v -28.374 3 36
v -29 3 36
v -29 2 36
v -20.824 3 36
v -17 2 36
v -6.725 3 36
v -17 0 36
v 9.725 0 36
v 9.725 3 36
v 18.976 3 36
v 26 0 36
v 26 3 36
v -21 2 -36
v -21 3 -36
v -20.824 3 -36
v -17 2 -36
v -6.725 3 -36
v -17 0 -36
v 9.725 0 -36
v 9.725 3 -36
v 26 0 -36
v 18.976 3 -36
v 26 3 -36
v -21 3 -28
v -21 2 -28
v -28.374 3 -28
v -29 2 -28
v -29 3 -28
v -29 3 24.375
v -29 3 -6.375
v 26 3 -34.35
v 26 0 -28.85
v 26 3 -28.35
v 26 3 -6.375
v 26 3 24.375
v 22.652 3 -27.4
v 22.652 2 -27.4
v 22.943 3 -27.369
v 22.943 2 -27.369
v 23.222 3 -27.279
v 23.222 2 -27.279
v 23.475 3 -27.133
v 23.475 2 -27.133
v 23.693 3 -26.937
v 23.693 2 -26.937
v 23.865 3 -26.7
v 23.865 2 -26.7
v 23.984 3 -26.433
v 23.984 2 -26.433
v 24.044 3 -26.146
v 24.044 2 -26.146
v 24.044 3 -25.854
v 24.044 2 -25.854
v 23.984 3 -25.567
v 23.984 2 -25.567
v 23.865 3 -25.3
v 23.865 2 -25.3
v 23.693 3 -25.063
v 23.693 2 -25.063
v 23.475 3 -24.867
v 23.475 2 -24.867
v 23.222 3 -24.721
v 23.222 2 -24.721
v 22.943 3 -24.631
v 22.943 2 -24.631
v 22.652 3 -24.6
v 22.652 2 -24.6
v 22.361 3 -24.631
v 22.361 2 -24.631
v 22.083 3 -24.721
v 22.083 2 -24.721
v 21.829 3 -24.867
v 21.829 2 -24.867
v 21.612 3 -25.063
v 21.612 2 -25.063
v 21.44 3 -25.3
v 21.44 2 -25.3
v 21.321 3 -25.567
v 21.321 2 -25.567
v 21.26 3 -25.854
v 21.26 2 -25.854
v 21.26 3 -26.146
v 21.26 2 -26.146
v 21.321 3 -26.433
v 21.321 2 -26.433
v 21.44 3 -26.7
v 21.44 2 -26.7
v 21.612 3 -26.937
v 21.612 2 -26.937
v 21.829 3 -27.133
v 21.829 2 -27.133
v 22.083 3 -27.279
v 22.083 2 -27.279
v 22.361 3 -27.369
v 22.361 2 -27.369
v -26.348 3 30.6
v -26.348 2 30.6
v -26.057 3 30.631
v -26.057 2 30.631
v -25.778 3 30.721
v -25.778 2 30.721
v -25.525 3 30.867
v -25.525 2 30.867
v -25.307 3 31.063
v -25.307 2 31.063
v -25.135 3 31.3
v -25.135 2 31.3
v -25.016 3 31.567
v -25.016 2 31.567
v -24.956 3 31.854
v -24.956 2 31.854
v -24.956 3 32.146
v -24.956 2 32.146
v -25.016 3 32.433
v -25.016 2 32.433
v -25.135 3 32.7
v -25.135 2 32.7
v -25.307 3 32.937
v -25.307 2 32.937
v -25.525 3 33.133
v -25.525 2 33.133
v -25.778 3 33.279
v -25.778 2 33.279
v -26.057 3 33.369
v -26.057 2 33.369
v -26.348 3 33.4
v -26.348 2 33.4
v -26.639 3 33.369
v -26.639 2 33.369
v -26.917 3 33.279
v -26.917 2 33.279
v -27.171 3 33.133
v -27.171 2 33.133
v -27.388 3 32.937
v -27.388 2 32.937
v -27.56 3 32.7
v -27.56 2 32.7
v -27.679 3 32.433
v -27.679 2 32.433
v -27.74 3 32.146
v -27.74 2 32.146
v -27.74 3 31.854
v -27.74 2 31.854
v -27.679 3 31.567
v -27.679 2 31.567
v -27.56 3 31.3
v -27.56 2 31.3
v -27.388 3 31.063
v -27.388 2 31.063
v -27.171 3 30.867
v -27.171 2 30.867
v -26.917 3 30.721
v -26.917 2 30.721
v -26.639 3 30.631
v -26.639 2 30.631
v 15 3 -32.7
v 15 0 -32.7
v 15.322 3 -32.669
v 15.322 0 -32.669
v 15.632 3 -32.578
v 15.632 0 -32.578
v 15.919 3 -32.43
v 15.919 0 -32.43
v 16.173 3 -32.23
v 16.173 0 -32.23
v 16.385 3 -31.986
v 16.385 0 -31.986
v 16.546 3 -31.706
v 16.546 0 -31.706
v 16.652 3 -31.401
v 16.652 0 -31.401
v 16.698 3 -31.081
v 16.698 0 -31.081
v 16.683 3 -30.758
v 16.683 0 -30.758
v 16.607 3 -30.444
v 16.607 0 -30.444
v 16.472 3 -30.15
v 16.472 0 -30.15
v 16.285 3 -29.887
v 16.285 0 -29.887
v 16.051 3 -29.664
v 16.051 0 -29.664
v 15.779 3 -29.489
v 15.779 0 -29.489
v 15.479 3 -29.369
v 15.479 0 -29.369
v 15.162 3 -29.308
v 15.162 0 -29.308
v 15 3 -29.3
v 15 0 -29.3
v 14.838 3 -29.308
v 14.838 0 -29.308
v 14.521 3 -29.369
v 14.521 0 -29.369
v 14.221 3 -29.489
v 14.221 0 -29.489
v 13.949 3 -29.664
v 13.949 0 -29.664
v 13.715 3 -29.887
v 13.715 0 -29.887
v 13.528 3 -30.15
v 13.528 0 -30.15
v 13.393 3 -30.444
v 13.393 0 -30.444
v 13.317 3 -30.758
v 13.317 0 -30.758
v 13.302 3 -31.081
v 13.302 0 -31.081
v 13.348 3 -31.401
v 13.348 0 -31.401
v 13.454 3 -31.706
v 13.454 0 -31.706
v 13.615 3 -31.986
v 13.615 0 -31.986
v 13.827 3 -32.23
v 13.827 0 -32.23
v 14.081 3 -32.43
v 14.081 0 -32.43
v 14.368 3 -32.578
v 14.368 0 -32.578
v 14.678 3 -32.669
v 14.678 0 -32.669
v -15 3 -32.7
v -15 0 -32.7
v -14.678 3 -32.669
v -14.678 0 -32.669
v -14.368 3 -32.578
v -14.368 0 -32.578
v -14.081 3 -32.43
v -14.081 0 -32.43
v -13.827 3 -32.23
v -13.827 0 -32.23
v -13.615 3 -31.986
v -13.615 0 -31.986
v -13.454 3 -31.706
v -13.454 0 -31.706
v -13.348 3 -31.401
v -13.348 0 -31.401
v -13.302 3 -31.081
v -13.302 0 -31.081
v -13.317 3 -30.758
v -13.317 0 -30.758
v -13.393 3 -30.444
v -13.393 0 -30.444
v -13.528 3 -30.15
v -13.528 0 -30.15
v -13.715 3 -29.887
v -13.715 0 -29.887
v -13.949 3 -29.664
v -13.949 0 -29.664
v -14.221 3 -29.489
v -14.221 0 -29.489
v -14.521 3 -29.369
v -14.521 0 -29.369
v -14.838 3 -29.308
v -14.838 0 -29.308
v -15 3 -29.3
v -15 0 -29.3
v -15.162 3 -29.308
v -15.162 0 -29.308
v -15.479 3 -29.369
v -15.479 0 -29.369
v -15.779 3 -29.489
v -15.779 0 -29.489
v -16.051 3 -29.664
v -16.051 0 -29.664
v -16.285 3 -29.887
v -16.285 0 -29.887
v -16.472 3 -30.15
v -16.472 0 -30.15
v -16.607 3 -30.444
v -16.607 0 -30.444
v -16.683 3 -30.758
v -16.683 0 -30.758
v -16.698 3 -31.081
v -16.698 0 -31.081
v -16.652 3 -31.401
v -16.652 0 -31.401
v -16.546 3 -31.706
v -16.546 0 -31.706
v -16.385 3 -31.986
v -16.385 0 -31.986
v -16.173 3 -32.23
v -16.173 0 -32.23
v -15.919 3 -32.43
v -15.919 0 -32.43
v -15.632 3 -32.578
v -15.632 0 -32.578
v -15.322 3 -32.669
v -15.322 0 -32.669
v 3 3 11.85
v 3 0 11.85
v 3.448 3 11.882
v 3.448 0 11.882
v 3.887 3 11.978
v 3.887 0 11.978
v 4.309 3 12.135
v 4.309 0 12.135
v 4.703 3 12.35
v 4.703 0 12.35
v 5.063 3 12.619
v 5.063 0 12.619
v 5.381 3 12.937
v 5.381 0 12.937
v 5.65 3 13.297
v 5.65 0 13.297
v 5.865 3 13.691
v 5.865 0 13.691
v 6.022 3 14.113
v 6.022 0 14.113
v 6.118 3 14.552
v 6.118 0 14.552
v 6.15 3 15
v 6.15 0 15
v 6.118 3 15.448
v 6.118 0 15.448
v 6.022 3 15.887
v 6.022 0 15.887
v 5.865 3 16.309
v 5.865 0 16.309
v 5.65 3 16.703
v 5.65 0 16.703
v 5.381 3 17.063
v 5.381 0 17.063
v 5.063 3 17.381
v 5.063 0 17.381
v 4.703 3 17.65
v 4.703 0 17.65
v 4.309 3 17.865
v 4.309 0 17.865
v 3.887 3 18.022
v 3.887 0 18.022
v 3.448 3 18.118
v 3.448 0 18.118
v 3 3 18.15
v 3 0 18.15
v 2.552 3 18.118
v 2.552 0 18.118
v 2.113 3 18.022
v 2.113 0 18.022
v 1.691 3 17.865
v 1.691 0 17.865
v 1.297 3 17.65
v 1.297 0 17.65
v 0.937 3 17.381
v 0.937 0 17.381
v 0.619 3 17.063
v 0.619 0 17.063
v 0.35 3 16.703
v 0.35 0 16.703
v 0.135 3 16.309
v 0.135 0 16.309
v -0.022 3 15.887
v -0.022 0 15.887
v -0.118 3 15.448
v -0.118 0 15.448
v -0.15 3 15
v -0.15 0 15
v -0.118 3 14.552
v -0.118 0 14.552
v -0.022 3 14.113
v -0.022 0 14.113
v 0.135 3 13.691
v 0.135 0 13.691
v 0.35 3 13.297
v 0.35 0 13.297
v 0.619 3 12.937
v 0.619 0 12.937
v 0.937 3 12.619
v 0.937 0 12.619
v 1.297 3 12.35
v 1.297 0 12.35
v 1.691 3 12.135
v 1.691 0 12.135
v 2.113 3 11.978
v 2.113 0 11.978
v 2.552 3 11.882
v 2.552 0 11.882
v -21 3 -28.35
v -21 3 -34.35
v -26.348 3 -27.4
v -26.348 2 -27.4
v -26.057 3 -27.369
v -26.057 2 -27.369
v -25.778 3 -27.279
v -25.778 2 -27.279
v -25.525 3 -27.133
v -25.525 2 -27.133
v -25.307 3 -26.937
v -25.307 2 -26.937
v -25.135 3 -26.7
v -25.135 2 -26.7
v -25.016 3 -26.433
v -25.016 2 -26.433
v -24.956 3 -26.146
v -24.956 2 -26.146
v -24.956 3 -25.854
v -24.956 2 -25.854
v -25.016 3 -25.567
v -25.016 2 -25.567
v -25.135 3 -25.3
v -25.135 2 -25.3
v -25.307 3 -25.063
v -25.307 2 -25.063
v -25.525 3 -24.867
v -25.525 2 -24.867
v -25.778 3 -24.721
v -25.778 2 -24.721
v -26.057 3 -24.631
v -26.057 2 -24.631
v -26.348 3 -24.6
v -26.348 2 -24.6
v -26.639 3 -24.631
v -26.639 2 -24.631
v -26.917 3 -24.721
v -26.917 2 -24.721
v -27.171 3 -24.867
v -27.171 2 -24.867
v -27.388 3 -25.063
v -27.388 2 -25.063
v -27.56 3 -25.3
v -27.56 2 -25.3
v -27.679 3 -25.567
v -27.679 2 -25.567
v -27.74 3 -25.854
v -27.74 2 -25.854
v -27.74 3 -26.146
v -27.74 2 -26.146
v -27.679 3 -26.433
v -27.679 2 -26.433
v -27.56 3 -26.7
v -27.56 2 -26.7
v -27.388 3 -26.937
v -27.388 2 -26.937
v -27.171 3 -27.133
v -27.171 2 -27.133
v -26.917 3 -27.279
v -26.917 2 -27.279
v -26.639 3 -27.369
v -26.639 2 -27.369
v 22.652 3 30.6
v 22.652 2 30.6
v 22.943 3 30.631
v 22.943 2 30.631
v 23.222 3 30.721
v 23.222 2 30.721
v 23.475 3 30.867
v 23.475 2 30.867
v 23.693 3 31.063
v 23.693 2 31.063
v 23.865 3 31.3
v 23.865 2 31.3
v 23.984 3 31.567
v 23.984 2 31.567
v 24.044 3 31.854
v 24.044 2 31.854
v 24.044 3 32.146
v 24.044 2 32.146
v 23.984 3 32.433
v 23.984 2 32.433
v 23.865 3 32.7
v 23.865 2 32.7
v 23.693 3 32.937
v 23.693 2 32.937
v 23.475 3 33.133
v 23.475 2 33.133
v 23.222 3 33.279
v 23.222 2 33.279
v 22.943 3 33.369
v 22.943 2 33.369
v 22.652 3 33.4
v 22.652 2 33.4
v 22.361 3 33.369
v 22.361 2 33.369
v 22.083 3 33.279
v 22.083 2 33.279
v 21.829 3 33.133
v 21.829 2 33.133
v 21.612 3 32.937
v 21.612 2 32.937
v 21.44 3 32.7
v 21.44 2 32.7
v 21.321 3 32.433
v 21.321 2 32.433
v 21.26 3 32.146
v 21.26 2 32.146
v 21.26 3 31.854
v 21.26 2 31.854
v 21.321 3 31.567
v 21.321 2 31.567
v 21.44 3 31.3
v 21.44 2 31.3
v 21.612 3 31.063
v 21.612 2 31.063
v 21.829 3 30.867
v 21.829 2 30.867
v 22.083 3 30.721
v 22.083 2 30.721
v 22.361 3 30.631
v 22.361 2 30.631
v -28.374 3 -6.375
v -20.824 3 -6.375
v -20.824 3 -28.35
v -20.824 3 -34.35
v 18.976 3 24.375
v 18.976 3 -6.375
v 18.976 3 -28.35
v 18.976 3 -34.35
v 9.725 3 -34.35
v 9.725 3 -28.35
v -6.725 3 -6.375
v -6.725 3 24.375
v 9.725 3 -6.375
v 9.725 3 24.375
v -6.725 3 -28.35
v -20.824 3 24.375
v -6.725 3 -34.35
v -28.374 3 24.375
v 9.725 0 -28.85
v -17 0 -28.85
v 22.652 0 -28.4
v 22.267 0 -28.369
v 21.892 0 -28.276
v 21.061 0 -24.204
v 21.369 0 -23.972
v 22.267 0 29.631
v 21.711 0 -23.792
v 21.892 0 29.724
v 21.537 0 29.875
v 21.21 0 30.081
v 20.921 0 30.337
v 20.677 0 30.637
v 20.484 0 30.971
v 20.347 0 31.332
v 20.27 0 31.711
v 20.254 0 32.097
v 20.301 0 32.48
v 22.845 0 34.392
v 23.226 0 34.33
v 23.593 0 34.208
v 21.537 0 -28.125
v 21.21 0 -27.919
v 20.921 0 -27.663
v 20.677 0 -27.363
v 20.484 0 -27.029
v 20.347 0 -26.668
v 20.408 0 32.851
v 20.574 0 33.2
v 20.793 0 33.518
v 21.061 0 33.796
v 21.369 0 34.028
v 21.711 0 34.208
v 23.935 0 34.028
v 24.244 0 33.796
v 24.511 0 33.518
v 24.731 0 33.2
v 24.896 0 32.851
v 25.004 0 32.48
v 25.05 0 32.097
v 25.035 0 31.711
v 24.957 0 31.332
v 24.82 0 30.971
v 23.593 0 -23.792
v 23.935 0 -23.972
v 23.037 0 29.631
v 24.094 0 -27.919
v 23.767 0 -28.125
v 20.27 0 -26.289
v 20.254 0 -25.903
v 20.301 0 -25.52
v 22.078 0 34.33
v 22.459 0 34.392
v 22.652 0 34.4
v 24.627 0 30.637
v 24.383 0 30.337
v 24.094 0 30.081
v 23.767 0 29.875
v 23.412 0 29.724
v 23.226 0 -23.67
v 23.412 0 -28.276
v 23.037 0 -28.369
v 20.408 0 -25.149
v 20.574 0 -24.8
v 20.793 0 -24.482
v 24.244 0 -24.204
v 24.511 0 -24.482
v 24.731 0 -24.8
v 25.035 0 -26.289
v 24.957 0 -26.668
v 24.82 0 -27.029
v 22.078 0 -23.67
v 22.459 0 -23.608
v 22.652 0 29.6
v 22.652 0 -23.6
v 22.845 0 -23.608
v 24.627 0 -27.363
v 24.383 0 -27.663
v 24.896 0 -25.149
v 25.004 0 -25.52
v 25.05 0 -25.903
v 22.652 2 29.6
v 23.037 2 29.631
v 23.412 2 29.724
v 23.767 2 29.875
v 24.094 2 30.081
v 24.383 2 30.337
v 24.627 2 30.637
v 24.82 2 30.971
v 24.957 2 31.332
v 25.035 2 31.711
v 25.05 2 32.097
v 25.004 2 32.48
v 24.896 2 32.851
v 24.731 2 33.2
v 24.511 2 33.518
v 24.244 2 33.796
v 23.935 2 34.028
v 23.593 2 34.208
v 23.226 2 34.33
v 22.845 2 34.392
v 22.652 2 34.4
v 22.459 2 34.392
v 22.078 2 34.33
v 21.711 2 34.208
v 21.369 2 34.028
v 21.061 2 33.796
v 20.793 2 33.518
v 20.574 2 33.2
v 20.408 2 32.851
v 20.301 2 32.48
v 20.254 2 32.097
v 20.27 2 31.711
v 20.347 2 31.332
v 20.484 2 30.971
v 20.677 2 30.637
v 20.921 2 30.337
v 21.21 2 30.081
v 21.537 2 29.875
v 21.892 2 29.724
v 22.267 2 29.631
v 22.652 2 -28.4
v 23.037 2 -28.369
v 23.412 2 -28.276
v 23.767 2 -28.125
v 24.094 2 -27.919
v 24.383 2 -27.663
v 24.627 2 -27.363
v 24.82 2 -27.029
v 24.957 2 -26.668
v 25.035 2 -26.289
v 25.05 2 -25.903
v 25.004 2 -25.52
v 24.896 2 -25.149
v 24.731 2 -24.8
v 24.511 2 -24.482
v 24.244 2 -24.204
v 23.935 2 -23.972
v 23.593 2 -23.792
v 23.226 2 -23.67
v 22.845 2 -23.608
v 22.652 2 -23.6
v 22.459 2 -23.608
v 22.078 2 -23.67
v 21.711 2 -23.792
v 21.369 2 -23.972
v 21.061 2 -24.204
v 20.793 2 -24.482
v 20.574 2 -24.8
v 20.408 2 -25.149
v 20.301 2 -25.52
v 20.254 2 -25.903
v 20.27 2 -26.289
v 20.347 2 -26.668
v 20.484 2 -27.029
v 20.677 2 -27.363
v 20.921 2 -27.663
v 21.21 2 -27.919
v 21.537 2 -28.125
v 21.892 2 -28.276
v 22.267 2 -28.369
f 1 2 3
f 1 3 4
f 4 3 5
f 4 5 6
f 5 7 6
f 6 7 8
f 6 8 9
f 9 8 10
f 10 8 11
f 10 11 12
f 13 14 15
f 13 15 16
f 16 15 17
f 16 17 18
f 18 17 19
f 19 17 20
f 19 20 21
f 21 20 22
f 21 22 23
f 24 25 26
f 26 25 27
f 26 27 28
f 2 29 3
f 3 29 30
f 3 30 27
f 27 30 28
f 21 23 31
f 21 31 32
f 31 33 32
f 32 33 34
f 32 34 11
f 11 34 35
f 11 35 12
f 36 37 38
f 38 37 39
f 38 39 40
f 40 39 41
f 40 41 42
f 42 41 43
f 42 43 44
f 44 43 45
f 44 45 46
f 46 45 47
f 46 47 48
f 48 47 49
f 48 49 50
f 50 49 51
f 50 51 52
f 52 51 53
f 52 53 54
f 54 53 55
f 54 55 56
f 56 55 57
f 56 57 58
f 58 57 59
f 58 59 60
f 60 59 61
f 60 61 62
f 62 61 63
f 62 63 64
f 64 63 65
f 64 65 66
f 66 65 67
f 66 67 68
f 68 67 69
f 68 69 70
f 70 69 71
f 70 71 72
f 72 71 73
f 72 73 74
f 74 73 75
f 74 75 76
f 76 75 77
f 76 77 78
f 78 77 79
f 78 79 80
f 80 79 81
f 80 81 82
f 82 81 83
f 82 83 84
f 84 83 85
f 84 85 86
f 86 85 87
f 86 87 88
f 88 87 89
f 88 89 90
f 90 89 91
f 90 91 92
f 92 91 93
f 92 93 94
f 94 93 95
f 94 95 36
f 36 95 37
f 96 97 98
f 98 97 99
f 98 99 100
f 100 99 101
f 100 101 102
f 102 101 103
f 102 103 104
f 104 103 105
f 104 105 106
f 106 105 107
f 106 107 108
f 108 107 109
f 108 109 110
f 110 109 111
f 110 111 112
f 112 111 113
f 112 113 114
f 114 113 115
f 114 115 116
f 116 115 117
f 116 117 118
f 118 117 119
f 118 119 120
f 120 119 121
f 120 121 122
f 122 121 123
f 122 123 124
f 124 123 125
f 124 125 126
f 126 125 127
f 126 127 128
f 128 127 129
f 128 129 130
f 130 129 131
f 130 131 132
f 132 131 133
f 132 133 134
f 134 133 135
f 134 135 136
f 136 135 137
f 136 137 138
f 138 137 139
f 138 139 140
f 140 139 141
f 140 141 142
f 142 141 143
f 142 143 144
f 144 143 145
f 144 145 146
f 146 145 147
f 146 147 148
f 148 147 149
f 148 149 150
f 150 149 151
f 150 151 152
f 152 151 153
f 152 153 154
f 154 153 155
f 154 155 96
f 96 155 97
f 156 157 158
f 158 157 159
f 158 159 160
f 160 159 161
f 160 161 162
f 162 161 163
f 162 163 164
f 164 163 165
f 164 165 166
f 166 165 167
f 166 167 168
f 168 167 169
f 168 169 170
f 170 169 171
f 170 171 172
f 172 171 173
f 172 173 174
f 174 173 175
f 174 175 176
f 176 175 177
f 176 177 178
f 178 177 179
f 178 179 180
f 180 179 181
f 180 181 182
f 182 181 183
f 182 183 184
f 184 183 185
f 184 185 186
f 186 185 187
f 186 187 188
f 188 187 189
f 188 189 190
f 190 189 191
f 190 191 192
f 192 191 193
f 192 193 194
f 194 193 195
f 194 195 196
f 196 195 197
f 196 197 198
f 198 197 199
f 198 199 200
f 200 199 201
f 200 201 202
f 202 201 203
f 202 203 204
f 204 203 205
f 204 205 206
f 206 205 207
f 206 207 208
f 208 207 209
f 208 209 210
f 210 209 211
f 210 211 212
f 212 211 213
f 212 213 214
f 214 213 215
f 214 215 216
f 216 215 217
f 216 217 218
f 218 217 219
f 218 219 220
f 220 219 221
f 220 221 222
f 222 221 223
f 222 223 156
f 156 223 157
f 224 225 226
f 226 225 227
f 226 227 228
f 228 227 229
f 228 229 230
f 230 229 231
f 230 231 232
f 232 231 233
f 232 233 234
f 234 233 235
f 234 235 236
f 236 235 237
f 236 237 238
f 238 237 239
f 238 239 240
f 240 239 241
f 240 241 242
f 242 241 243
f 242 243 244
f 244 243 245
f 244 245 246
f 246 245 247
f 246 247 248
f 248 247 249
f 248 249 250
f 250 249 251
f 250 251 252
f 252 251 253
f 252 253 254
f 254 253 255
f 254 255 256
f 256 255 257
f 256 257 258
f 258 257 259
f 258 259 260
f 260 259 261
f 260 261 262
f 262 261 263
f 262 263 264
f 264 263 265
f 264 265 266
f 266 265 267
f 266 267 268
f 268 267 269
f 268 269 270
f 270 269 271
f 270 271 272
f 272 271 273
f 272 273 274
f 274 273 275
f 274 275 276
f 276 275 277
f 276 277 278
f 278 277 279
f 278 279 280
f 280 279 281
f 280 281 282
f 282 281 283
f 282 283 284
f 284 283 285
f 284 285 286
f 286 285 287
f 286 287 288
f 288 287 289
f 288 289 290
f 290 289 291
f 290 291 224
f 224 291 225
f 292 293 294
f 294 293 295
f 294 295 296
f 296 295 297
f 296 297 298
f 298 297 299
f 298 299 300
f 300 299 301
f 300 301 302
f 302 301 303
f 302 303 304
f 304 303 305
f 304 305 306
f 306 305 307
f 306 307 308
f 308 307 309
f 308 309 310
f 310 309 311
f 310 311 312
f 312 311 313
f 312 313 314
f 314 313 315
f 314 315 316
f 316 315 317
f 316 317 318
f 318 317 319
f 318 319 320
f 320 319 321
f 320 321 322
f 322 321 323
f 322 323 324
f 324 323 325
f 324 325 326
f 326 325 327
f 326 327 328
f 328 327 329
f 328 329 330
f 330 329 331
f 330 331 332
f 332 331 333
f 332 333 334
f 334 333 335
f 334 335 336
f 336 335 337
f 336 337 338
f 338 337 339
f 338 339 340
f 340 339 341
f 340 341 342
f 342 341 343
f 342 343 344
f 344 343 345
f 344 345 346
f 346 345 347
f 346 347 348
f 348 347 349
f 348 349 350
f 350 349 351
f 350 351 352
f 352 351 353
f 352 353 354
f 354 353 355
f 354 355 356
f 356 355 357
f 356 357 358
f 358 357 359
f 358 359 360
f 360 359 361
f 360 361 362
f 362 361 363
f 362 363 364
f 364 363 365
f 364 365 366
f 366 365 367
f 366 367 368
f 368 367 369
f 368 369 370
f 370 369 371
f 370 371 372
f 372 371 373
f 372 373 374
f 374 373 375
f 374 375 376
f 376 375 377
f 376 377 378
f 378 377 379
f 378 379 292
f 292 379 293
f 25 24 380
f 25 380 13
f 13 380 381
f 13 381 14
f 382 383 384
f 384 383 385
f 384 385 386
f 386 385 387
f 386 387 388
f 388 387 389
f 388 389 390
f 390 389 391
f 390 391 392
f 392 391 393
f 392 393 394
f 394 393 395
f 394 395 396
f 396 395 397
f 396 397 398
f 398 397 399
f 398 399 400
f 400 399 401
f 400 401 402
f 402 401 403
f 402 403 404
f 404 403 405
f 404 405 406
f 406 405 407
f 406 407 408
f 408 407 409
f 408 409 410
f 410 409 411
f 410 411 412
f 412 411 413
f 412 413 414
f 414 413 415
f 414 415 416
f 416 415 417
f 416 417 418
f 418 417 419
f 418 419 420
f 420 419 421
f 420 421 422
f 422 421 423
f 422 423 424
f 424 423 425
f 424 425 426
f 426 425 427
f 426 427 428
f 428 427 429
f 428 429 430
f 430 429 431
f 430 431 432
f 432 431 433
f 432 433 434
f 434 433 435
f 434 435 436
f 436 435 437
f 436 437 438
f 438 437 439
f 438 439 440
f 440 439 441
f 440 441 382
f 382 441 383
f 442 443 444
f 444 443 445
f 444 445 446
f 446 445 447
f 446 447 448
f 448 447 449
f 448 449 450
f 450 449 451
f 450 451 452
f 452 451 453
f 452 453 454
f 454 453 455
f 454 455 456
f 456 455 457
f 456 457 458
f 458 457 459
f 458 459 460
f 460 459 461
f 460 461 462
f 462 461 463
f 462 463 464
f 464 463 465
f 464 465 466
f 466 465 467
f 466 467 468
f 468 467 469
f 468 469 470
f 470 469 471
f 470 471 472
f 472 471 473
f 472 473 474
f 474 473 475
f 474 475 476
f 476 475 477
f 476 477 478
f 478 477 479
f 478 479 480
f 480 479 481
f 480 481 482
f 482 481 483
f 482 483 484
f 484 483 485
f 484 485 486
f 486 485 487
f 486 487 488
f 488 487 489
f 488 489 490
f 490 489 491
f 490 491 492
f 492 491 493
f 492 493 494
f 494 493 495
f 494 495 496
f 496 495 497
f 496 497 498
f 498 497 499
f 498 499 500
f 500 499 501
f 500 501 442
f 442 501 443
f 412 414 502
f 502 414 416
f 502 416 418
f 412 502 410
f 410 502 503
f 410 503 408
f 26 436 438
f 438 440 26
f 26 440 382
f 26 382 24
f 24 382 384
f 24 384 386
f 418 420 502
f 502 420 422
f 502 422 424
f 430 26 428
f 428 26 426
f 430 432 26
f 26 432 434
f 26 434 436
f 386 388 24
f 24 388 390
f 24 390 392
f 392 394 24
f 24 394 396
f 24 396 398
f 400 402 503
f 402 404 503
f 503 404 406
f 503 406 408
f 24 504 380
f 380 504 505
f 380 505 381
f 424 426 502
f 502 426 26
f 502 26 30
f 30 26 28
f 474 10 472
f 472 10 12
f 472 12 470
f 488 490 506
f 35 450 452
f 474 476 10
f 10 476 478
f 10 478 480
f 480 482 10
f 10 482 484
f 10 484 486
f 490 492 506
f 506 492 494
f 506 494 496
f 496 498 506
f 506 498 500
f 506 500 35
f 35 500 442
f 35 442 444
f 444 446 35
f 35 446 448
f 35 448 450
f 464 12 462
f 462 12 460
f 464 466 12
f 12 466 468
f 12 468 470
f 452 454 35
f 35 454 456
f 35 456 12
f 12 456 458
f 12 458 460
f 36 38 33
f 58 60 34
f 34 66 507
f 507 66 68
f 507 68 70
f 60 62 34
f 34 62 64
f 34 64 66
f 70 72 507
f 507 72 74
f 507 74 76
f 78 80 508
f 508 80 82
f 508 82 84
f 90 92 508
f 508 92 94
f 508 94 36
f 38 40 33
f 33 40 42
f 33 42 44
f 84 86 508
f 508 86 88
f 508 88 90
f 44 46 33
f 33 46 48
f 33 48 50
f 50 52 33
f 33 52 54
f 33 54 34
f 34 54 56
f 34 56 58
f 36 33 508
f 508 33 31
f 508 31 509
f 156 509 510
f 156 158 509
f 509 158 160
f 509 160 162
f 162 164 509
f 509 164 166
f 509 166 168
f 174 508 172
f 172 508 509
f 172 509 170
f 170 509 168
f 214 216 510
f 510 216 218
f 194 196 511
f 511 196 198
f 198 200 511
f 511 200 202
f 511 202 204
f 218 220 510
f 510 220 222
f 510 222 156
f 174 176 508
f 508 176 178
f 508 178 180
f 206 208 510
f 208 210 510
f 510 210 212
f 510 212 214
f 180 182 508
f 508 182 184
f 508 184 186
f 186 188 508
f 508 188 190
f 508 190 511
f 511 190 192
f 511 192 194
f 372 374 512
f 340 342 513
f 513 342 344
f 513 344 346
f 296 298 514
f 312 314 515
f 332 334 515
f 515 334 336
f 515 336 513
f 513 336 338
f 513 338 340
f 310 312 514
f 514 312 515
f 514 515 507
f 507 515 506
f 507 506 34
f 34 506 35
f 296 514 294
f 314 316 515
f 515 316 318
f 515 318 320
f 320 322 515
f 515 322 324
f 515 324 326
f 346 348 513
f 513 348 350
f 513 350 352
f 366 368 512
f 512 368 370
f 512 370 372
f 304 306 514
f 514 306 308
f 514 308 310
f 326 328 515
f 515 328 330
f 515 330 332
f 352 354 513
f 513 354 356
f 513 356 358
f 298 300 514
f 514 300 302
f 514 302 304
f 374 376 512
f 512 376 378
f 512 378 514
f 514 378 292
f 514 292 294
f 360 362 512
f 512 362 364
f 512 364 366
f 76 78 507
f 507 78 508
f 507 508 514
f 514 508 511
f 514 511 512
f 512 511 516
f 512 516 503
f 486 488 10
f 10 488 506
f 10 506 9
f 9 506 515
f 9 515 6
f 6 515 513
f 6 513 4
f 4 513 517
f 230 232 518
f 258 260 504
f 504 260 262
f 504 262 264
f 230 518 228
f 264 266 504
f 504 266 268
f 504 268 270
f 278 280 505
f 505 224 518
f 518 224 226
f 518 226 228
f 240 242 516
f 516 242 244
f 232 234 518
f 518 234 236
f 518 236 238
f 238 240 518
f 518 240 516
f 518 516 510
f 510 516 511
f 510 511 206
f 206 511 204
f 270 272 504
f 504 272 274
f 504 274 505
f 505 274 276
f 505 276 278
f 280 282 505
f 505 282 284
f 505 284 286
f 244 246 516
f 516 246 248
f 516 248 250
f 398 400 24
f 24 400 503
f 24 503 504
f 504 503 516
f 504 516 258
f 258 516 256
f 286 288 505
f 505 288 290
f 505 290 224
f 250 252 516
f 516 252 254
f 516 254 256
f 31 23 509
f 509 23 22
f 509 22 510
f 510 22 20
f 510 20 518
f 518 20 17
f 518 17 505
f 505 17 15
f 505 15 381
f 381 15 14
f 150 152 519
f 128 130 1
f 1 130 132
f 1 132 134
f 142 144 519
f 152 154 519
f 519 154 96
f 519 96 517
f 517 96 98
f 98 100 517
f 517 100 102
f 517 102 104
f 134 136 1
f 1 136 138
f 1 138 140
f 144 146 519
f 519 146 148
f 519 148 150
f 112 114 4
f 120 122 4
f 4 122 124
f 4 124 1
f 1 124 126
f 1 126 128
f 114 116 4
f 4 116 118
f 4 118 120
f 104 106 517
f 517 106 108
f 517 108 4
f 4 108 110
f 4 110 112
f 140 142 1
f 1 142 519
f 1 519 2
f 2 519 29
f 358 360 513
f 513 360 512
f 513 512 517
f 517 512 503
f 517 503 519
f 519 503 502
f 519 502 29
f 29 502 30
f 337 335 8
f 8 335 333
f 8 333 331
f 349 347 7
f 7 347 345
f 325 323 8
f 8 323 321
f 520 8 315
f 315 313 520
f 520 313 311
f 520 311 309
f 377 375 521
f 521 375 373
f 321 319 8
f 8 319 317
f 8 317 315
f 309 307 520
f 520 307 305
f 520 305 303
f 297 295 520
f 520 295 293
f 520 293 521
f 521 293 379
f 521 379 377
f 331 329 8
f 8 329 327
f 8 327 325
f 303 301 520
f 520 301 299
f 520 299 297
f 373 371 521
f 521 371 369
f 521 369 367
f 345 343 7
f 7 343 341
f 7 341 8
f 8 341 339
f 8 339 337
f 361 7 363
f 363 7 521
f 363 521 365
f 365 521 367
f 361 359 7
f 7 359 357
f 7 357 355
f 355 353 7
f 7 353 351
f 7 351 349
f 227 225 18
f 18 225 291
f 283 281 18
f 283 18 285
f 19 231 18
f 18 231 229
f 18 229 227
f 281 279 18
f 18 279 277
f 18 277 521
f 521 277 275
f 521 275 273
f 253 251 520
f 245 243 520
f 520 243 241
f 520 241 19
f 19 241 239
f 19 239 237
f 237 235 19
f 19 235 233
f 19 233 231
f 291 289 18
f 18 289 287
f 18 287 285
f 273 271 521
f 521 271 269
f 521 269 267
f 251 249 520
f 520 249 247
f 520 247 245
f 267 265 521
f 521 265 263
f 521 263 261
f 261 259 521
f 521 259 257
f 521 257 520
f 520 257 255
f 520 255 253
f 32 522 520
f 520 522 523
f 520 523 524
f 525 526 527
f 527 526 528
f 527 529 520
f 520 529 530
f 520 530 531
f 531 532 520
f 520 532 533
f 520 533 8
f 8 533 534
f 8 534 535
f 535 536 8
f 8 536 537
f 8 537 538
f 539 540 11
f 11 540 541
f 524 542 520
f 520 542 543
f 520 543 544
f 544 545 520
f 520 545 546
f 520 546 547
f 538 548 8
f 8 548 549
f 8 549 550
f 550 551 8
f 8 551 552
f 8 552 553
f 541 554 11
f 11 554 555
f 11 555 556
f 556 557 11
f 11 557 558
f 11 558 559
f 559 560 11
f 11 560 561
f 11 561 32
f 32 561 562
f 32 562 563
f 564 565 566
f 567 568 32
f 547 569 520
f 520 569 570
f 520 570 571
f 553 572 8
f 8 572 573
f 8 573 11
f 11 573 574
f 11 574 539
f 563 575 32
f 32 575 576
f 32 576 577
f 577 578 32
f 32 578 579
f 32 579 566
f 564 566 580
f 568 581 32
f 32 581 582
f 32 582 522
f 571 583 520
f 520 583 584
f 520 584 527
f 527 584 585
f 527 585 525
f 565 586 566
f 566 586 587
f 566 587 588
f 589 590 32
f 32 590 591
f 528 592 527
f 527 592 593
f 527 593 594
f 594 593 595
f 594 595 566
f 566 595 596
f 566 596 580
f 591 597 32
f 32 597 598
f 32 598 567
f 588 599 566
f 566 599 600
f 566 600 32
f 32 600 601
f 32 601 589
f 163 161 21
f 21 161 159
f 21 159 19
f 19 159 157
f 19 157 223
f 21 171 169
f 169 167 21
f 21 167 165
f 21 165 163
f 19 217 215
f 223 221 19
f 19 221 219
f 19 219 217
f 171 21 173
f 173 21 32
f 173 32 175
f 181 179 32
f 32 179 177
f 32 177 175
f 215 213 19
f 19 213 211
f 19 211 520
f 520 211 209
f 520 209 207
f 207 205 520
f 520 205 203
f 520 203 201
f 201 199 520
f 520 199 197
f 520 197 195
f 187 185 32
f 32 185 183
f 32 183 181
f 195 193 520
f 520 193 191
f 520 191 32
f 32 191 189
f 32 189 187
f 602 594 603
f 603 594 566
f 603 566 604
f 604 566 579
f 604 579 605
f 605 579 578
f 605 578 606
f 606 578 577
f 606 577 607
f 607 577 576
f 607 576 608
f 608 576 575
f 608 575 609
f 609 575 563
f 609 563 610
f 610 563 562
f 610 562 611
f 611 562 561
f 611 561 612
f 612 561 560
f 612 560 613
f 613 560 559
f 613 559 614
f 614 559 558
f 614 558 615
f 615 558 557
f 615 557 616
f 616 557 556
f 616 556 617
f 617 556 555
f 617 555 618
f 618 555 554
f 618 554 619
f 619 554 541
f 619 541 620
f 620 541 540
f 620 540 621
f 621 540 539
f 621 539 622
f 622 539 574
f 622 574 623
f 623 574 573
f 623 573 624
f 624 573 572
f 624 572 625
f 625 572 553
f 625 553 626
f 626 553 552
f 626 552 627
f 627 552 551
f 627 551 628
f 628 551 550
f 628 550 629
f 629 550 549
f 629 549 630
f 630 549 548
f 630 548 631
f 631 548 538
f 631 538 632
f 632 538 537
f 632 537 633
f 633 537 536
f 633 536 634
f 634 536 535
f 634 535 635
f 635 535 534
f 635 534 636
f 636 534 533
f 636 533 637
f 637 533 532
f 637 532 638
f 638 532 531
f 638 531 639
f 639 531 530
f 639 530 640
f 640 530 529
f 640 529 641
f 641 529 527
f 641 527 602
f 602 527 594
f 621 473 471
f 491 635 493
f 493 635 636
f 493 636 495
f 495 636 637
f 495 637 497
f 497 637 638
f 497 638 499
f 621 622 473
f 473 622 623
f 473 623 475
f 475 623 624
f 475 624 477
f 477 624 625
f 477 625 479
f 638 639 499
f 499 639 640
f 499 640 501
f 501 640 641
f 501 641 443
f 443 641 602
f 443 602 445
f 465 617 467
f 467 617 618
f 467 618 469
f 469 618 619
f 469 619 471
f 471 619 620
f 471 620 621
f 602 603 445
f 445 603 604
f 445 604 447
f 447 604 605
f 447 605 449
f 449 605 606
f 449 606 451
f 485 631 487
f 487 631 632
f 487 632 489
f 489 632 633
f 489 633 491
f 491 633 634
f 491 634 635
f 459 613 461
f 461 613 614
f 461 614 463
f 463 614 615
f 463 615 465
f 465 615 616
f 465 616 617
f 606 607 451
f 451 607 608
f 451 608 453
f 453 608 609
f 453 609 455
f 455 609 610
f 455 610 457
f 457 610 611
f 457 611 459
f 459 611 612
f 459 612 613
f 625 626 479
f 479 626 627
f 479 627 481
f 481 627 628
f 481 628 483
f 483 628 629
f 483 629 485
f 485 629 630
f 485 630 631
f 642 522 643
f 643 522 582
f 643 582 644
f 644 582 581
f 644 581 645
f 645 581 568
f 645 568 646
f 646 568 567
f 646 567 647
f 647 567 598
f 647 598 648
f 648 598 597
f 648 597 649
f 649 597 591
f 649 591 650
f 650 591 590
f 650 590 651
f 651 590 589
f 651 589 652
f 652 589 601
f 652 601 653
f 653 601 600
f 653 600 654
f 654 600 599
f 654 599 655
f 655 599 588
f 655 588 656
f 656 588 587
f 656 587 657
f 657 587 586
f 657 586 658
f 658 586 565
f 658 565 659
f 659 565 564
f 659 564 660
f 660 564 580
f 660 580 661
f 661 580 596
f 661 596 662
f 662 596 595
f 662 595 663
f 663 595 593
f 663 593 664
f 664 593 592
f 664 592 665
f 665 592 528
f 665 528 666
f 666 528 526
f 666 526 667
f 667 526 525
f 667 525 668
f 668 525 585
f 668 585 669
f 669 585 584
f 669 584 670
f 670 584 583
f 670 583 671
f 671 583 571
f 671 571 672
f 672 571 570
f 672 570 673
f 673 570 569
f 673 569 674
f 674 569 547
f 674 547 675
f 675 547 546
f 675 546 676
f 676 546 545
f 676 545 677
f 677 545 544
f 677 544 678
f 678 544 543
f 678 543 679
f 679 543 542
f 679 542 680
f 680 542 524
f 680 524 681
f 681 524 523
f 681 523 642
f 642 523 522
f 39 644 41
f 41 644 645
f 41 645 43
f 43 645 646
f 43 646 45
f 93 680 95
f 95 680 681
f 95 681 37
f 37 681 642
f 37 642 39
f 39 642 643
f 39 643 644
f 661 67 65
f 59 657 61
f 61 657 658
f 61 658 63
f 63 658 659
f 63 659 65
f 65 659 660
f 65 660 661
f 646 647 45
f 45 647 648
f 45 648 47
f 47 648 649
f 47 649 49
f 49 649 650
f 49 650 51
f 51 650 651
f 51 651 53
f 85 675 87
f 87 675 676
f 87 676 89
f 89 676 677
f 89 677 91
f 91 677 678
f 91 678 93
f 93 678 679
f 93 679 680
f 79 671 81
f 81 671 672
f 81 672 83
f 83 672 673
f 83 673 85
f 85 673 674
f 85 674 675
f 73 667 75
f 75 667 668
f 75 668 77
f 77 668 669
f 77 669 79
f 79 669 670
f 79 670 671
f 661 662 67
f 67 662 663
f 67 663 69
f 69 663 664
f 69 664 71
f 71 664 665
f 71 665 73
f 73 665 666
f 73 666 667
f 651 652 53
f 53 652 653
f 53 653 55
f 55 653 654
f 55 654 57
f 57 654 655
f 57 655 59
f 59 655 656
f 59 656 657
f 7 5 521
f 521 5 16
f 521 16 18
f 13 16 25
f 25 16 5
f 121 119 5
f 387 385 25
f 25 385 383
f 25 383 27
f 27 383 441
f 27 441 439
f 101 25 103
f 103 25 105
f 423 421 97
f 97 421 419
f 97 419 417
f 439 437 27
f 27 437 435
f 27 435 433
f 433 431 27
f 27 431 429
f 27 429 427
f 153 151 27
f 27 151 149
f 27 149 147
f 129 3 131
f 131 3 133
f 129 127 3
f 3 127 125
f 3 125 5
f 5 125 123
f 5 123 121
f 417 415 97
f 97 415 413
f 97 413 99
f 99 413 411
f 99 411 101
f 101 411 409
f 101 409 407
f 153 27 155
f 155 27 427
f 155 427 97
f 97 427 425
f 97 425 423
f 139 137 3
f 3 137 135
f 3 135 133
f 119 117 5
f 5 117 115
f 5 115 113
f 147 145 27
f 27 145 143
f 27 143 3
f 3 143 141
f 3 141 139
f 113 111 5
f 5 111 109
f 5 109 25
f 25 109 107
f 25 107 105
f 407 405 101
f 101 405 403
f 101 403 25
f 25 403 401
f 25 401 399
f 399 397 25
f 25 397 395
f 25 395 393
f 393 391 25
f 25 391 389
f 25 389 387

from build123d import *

# Parameters (mm, degrees)
ESQUISSE1_R             = 1.7
ESQUISSE1_R_2           = 3.15
ESQUISSE1_R_3           = 1.4
BOSS_EXTRU_3_DEPTH      = 3
ESQUISSE1_5_R           = 1.4
ESQUISSE1_5_R_2         = 2.4
ENL_V_MAT_EXTRU_7_DEPTH = 2


with BuildPart() as part:
    # Esquisse1 → Boss.-Extru.3 (new body)
    with BuildSketch(Plane(origin=(0, 0, 0), x_dir=(1, 0, 0), z_dir=(0, 1, 0))):
        Polygon((-21, 36), (-21, 28), (-29, 28), (-29, -36), (26, -36), (26, 36), align=None)
        with Locations((15, 31)):
            Circle(ESQUISSE1_R, mode=Mode.SUBTRACT)
        with Locations((3, -15)):
            Circle(ESQUISSE1_R_2, mode=Mode.SUBTRACT)
        with Locations((-15, 31)):
            Circle(ESQUISSE1_R, mode=Mode.SUBTRACT)
        with Locations((-26.347888471, 26)):
            Circle(ESQUISSE1_R_3, mode=Mode.SUBTRACT)
        with Locations((-26.347888471, -32)):
            Circle(ESQUISSE1_R_3, mode=Mode.SUBTRACT)
        with Locations((22.652111529, -32)):
            Circle(ESQUISSE1_R_3, mode=Mode.SUBTRACT)
        with Locations((22.652111529, 26)):
            Circle(ESQUISSE1_R_3, mode=Mode.SUBTRACT)
    extrude(amount=BOSS_EXTRU_3_DEPTH)

    # Esquisse1<5> → Enlèv. mat.-Extru.7 (cut)
    # profile 1 of 3: a face of its own
    with BuildSketch(Plane(origin=(0, 0, 0), x_dir=(1, 0, 0), z_dir=(0, 1, 0))):
        Polygon((-17, 36), (-21, 36), (-21, 28), (-29, 28), (-29, -36), (-17, -36), align=None)
        with Locations((-26.347888471, 26)):
            Circle(ESQUISSE1_5_R, mode=Mode.SUBTRACT)
        with Locations((-26.347888471, -32)):
            Circle(ESQUISSE1_5_R, mode=Mode.SUBTRACT)
    # profile 2 of 3: a face of its own
    with BuildSketch(Plane(origin=(0, 0, 0), x_dir=(1, 0, 0), z_dir=(0, 1, 0))):
        with Locations((22.652111529, 26)):
            Circle(ESQUISSE1_5_R_2)
        with Locations((22.652111529, 26)):
            Circle(ESQUISSE1_5_R, mode=Mode.SUBTRACT)
    # profile 3 of 3: a face of its own
    with BuildSketch(Plane(origin=(0, 0, 0), x_dir=(1, 0, 0), z_dir=(0, 1, 0))):
        with Locations((22.652111529, -32)):
            Circle(ESQUISSE1_5_R_2)
        with Locations((22.652111529, -32)):
            Circle(ESQUISSE1_5_R, mode=Mode.SUBTRACT)
    extrude(amount=ENL_V_MAT_EXTRU_7_DEPTH, mode=Mode.SUBTRACT)


solid = part.part
